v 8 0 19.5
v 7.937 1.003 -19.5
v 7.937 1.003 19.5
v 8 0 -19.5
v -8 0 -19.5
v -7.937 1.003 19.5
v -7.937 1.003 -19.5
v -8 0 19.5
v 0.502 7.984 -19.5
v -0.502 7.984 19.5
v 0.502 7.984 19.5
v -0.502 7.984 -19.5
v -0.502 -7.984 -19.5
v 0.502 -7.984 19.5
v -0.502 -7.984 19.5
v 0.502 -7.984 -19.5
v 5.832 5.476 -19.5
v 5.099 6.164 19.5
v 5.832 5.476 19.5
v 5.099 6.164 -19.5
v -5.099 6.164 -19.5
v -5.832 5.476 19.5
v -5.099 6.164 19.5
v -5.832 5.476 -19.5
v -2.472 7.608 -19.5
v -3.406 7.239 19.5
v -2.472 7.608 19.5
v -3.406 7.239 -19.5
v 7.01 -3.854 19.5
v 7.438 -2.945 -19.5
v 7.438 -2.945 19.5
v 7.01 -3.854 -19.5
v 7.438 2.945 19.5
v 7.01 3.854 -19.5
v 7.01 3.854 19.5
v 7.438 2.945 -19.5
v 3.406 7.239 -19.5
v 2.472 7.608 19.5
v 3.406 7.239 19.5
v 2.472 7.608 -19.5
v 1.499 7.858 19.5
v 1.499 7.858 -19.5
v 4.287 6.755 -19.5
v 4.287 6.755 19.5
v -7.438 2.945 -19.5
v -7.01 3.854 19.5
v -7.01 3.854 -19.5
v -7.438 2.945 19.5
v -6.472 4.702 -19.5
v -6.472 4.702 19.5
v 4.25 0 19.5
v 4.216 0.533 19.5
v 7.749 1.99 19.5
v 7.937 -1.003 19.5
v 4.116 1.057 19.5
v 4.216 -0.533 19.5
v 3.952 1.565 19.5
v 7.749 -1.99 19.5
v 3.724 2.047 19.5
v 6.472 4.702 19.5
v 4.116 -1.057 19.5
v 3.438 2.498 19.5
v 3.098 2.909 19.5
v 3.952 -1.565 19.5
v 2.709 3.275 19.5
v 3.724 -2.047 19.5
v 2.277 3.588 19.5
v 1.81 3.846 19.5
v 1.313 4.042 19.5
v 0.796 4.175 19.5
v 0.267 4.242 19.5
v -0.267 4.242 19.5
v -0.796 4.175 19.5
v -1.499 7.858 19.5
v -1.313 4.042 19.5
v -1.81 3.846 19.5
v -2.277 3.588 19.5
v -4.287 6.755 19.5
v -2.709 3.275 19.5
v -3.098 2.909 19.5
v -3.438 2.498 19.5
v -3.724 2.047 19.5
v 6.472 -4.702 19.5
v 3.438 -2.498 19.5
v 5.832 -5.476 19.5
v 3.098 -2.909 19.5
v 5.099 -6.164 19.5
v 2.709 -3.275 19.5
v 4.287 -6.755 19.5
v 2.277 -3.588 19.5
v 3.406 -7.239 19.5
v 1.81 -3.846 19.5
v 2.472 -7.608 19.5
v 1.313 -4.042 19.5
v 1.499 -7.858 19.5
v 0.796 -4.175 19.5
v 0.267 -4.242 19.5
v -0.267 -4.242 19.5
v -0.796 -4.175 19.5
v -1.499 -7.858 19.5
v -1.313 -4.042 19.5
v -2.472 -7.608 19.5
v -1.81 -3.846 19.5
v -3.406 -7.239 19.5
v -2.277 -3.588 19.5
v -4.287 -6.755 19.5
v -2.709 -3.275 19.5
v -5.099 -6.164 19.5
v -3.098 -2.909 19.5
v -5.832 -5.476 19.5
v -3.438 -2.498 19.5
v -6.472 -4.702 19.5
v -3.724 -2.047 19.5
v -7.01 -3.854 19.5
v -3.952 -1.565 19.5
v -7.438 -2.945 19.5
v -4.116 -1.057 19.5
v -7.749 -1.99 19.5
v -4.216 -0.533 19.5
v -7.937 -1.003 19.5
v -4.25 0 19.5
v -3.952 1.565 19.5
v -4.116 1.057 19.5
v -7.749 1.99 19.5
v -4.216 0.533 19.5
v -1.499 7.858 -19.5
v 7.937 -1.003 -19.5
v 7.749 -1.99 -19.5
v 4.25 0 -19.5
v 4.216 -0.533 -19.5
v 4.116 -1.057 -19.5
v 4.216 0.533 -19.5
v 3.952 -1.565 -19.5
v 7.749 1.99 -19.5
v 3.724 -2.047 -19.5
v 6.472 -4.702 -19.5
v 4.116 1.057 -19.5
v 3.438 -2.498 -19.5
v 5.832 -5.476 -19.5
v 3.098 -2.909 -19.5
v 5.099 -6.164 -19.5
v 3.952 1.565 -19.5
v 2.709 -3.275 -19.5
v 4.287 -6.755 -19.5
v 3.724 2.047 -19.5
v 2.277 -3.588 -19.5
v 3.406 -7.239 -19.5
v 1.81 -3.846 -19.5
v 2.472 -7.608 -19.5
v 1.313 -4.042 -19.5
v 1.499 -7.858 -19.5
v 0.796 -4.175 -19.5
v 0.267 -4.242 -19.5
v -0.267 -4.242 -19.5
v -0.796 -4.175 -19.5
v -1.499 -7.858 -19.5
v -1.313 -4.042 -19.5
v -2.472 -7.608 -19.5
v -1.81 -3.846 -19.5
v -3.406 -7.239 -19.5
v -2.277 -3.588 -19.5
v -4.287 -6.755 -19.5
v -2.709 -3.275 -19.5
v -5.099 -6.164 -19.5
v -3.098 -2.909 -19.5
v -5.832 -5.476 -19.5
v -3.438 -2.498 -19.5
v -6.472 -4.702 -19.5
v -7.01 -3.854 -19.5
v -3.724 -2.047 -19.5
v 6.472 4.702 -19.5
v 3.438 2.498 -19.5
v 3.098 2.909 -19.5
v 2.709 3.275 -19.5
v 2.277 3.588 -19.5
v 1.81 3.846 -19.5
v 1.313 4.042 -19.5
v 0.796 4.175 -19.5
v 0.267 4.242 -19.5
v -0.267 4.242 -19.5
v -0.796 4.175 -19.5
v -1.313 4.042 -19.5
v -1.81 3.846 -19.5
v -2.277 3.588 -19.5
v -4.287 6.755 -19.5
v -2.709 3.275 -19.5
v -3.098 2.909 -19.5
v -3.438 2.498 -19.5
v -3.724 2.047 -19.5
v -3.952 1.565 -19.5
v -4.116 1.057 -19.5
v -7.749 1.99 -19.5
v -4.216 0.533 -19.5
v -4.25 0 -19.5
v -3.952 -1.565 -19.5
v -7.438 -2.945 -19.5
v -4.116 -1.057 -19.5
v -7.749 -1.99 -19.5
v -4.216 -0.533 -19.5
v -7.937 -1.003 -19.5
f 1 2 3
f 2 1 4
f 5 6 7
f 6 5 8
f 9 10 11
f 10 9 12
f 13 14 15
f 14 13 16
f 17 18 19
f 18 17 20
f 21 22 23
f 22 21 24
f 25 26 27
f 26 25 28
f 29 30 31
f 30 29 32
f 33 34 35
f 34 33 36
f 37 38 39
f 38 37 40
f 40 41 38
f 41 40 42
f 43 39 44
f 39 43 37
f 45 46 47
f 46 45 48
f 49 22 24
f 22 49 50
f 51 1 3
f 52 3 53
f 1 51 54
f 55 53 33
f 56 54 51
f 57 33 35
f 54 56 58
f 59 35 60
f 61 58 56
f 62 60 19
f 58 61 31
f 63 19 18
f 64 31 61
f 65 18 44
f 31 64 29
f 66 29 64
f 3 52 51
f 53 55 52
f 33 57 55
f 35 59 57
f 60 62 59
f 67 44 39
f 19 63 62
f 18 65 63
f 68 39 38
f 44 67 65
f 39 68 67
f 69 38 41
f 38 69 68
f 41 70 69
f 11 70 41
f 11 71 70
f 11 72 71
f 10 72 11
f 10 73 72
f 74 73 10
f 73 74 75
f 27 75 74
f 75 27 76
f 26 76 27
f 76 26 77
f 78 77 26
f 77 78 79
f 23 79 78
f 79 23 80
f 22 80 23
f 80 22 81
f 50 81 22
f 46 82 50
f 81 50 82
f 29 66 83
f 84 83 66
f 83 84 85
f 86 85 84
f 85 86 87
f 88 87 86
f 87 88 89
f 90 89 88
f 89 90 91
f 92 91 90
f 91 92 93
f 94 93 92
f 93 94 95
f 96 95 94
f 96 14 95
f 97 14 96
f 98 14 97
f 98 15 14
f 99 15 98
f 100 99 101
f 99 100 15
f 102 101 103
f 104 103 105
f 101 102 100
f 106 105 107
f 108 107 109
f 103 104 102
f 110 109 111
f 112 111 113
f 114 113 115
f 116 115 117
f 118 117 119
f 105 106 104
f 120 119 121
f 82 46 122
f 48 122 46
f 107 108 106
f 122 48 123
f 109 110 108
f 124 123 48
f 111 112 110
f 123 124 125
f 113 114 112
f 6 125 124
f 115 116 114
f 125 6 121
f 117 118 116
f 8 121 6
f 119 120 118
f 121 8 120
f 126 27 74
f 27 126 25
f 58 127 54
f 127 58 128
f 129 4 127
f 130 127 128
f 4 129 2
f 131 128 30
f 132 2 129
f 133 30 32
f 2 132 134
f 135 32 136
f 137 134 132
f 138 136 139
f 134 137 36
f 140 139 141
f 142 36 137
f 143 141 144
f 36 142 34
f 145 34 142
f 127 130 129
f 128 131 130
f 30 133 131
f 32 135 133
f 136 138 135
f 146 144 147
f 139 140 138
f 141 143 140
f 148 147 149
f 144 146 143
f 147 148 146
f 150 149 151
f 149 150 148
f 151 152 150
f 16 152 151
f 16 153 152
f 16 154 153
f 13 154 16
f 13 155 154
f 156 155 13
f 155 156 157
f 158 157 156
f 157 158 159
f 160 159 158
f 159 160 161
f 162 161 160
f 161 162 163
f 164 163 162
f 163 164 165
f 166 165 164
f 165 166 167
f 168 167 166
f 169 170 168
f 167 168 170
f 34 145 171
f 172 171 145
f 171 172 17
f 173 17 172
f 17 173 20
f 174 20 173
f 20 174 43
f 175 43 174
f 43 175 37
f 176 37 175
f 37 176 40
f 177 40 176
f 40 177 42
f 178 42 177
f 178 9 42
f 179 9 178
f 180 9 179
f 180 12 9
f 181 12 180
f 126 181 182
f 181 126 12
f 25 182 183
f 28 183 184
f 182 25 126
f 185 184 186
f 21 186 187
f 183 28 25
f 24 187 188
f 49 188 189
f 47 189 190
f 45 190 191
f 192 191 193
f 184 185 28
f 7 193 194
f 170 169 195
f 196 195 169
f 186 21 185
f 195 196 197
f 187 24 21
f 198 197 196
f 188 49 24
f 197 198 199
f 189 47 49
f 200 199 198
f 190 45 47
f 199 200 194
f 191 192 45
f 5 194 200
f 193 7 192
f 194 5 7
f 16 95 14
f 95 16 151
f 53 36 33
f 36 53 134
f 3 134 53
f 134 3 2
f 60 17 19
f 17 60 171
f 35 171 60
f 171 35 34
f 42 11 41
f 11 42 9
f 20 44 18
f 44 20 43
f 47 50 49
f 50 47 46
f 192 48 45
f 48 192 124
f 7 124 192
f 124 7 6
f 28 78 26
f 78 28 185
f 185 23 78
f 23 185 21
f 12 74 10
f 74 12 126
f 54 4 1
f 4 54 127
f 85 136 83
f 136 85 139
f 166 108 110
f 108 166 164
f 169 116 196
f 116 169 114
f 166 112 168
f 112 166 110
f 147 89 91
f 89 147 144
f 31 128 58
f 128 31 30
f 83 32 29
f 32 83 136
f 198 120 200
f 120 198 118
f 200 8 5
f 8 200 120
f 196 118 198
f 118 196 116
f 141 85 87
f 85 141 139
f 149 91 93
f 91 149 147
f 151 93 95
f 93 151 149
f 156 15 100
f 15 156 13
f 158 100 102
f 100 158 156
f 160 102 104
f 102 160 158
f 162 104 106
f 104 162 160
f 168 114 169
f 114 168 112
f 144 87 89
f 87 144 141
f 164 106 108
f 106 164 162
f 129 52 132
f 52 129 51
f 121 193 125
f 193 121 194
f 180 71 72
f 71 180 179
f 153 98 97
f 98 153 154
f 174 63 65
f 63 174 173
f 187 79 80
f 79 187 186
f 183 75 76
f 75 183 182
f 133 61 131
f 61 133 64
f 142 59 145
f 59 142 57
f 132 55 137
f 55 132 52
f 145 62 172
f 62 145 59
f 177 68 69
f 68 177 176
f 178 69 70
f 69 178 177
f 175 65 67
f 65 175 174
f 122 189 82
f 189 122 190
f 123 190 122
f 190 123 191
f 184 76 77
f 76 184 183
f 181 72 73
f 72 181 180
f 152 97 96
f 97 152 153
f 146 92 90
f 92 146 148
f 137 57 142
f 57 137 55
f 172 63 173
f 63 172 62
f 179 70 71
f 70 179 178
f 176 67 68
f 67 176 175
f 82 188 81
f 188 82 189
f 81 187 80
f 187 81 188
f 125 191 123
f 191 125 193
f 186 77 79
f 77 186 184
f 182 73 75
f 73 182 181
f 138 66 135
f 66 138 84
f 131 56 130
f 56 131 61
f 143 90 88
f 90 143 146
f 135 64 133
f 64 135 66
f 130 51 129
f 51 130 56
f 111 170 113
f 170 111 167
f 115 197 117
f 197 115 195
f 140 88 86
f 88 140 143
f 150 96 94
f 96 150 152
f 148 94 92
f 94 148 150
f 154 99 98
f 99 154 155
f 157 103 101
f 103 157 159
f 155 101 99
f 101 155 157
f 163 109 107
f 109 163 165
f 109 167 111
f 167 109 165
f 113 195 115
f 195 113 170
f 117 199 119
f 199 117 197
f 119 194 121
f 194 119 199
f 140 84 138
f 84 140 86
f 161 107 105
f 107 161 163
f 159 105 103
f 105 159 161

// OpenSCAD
$fn = 50;


difference() {
	union() {
		translate(v = [0, 0, -19.5000000000]) {
			cylinder(h = 39, r = 8.0000000000);
		}
	}
	union() {
		translate(v = [0, 0, -100.0000000000]) {
			cylinder(h = 200, r = 4.2500000000);
		}
	}
}
